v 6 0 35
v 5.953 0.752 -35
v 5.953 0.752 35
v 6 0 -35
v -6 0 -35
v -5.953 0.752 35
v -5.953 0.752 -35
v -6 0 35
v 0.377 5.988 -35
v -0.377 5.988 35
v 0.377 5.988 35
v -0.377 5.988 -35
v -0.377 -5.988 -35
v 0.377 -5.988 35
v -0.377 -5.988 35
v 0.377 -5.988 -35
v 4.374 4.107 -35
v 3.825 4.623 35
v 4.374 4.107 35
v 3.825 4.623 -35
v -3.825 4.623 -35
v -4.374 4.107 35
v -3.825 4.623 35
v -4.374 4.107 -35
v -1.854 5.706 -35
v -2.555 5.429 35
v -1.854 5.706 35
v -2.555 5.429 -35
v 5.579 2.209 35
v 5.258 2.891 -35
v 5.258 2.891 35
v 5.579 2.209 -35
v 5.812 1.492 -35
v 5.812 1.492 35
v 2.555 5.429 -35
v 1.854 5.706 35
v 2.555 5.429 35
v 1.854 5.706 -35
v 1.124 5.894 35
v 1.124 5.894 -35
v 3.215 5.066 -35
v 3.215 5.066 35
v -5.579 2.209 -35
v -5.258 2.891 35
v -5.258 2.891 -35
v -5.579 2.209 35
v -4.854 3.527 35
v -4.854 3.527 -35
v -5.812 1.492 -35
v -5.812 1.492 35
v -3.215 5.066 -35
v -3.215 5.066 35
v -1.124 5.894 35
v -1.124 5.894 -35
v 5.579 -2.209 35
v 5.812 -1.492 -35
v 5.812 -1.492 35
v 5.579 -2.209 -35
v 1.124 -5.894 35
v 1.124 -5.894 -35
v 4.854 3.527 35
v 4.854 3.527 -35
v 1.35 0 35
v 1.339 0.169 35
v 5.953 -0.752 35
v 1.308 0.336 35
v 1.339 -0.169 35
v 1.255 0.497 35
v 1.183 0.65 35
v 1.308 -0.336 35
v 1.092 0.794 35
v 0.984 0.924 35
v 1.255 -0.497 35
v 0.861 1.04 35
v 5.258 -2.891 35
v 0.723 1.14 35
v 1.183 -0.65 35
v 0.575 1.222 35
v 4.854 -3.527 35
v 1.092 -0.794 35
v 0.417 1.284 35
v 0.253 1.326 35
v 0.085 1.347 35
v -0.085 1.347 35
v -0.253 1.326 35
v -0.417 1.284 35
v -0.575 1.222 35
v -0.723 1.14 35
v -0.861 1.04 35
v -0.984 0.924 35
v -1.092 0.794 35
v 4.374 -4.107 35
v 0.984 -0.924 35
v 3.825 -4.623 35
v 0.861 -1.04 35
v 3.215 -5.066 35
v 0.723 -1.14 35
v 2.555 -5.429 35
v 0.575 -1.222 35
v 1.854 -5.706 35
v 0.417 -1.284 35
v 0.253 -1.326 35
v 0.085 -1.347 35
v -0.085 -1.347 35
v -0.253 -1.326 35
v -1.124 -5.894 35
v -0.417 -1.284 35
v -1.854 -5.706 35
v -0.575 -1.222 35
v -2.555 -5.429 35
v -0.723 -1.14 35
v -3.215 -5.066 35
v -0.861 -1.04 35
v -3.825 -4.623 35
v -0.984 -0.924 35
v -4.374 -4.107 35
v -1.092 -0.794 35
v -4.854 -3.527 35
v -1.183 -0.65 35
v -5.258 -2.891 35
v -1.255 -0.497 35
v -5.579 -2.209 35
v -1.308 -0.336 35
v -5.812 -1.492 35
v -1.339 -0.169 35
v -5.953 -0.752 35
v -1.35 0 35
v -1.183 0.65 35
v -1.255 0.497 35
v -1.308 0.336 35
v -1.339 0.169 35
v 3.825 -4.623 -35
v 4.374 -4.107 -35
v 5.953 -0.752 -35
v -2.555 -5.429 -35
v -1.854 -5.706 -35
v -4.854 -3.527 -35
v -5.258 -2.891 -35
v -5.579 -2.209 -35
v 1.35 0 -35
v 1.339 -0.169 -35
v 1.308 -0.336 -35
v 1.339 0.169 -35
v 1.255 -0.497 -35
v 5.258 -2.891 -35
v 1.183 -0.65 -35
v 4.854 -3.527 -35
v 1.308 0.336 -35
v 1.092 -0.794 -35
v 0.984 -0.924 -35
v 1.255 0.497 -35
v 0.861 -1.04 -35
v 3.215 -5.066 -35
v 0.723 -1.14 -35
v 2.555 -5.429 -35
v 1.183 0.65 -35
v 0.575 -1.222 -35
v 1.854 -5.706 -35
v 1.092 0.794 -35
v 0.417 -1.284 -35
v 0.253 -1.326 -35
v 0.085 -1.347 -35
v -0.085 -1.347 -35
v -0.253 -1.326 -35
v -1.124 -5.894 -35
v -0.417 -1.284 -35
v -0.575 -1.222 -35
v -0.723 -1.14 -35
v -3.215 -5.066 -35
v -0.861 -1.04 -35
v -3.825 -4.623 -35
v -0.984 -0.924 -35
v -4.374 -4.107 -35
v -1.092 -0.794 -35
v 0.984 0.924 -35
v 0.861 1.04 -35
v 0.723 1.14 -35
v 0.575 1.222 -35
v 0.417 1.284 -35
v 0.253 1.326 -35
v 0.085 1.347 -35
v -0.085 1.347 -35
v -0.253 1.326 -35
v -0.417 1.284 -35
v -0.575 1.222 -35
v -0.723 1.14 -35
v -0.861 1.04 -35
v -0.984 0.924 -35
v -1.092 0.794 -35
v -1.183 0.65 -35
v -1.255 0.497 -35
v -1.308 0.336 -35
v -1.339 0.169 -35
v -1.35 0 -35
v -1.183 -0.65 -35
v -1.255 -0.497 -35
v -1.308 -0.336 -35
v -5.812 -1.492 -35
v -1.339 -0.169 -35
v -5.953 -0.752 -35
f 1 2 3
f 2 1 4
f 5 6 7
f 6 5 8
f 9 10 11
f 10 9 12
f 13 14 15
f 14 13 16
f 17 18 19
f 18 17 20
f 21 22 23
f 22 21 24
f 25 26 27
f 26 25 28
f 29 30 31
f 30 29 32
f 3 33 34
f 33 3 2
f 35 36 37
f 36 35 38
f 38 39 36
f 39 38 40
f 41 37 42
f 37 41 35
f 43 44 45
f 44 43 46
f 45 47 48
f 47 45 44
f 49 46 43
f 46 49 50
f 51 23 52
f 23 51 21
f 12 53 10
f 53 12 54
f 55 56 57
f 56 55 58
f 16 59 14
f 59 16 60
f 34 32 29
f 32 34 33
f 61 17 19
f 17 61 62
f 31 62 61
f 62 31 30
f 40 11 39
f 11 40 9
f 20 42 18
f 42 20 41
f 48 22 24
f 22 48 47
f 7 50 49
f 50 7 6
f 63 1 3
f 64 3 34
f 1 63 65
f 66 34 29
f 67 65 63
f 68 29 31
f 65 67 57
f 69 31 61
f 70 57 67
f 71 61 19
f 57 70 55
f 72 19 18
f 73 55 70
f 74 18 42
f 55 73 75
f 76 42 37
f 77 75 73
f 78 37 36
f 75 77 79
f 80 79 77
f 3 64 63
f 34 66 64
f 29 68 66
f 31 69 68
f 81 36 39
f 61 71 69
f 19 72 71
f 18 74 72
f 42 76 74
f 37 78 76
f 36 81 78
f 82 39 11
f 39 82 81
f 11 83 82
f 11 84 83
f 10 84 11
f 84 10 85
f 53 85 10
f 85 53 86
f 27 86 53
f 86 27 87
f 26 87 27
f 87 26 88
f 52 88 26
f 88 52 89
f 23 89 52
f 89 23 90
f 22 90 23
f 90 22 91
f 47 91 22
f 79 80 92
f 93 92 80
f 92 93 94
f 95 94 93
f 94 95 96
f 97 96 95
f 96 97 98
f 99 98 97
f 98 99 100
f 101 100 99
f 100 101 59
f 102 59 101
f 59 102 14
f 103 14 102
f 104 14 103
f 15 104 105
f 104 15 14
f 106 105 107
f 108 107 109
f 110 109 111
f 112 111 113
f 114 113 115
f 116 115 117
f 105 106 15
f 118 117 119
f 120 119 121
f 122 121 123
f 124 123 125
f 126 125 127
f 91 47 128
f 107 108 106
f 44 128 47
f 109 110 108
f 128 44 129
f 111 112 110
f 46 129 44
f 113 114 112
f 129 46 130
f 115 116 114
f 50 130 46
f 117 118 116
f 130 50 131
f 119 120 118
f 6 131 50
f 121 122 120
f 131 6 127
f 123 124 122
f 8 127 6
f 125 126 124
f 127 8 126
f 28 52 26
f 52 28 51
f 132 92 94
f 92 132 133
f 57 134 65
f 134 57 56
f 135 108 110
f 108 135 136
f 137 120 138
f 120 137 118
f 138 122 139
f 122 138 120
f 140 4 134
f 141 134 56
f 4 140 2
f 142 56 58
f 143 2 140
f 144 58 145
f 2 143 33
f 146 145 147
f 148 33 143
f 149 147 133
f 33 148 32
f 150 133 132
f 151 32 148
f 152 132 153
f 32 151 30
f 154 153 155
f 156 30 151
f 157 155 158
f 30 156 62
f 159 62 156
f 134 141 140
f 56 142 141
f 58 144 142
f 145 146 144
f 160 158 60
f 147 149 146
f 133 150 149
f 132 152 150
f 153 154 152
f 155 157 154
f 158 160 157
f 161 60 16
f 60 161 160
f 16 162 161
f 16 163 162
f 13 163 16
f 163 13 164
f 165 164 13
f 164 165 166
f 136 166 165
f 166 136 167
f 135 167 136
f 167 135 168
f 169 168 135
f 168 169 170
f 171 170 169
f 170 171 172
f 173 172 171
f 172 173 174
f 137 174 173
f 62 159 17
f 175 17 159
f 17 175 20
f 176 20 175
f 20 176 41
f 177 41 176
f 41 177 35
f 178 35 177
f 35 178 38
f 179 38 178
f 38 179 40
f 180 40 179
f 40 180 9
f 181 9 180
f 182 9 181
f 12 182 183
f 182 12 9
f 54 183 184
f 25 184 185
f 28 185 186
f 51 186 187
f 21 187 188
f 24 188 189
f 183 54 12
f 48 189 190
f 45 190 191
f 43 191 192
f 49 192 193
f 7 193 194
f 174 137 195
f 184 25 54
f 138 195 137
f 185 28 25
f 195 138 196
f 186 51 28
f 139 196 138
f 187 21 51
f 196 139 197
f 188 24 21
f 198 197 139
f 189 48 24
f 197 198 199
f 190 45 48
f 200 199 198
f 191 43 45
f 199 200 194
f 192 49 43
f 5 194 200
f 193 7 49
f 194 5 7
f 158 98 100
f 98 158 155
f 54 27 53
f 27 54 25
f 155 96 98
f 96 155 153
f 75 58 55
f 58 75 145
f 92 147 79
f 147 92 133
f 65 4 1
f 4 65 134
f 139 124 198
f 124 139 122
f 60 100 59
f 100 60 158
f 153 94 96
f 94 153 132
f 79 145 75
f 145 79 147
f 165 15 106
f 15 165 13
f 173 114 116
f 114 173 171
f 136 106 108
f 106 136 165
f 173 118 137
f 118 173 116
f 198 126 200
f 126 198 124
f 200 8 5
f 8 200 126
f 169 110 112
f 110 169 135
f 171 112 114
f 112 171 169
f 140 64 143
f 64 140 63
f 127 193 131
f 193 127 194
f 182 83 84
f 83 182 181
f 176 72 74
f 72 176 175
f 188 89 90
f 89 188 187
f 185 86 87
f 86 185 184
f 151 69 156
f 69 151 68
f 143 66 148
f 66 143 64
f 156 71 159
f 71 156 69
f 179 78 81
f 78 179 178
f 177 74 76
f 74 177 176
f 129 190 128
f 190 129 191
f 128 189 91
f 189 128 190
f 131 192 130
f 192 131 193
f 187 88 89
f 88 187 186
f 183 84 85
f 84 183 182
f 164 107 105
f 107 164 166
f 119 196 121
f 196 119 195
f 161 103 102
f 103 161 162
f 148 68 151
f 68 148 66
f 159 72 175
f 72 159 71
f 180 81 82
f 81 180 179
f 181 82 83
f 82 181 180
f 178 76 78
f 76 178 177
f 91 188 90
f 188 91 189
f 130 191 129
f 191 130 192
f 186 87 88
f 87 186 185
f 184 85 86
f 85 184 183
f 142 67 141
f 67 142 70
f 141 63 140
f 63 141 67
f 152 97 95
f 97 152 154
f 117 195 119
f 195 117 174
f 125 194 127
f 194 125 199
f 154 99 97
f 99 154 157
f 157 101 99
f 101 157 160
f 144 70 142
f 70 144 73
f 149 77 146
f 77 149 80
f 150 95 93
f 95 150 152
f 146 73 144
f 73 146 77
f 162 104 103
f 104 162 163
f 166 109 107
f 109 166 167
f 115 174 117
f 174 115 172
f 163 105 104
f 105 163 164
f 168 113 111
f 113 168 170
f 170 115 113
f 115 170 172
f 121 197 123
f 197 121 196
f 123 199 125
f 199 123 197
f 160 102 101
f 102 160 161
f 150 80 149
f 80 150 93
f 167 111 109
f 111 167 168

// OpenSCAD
$fn = 50;


difference() {
	union() {
		translate(v = [0, 0, -35.0000000000]) {
			cylinder(h = 70, r = 6.0000000000);
		}
	}
	union() {
		translate(v = [0, 0, -100.0000000000]) {
			cylinder(h = 200, r = 1.3500000000);
		}
	}
}
